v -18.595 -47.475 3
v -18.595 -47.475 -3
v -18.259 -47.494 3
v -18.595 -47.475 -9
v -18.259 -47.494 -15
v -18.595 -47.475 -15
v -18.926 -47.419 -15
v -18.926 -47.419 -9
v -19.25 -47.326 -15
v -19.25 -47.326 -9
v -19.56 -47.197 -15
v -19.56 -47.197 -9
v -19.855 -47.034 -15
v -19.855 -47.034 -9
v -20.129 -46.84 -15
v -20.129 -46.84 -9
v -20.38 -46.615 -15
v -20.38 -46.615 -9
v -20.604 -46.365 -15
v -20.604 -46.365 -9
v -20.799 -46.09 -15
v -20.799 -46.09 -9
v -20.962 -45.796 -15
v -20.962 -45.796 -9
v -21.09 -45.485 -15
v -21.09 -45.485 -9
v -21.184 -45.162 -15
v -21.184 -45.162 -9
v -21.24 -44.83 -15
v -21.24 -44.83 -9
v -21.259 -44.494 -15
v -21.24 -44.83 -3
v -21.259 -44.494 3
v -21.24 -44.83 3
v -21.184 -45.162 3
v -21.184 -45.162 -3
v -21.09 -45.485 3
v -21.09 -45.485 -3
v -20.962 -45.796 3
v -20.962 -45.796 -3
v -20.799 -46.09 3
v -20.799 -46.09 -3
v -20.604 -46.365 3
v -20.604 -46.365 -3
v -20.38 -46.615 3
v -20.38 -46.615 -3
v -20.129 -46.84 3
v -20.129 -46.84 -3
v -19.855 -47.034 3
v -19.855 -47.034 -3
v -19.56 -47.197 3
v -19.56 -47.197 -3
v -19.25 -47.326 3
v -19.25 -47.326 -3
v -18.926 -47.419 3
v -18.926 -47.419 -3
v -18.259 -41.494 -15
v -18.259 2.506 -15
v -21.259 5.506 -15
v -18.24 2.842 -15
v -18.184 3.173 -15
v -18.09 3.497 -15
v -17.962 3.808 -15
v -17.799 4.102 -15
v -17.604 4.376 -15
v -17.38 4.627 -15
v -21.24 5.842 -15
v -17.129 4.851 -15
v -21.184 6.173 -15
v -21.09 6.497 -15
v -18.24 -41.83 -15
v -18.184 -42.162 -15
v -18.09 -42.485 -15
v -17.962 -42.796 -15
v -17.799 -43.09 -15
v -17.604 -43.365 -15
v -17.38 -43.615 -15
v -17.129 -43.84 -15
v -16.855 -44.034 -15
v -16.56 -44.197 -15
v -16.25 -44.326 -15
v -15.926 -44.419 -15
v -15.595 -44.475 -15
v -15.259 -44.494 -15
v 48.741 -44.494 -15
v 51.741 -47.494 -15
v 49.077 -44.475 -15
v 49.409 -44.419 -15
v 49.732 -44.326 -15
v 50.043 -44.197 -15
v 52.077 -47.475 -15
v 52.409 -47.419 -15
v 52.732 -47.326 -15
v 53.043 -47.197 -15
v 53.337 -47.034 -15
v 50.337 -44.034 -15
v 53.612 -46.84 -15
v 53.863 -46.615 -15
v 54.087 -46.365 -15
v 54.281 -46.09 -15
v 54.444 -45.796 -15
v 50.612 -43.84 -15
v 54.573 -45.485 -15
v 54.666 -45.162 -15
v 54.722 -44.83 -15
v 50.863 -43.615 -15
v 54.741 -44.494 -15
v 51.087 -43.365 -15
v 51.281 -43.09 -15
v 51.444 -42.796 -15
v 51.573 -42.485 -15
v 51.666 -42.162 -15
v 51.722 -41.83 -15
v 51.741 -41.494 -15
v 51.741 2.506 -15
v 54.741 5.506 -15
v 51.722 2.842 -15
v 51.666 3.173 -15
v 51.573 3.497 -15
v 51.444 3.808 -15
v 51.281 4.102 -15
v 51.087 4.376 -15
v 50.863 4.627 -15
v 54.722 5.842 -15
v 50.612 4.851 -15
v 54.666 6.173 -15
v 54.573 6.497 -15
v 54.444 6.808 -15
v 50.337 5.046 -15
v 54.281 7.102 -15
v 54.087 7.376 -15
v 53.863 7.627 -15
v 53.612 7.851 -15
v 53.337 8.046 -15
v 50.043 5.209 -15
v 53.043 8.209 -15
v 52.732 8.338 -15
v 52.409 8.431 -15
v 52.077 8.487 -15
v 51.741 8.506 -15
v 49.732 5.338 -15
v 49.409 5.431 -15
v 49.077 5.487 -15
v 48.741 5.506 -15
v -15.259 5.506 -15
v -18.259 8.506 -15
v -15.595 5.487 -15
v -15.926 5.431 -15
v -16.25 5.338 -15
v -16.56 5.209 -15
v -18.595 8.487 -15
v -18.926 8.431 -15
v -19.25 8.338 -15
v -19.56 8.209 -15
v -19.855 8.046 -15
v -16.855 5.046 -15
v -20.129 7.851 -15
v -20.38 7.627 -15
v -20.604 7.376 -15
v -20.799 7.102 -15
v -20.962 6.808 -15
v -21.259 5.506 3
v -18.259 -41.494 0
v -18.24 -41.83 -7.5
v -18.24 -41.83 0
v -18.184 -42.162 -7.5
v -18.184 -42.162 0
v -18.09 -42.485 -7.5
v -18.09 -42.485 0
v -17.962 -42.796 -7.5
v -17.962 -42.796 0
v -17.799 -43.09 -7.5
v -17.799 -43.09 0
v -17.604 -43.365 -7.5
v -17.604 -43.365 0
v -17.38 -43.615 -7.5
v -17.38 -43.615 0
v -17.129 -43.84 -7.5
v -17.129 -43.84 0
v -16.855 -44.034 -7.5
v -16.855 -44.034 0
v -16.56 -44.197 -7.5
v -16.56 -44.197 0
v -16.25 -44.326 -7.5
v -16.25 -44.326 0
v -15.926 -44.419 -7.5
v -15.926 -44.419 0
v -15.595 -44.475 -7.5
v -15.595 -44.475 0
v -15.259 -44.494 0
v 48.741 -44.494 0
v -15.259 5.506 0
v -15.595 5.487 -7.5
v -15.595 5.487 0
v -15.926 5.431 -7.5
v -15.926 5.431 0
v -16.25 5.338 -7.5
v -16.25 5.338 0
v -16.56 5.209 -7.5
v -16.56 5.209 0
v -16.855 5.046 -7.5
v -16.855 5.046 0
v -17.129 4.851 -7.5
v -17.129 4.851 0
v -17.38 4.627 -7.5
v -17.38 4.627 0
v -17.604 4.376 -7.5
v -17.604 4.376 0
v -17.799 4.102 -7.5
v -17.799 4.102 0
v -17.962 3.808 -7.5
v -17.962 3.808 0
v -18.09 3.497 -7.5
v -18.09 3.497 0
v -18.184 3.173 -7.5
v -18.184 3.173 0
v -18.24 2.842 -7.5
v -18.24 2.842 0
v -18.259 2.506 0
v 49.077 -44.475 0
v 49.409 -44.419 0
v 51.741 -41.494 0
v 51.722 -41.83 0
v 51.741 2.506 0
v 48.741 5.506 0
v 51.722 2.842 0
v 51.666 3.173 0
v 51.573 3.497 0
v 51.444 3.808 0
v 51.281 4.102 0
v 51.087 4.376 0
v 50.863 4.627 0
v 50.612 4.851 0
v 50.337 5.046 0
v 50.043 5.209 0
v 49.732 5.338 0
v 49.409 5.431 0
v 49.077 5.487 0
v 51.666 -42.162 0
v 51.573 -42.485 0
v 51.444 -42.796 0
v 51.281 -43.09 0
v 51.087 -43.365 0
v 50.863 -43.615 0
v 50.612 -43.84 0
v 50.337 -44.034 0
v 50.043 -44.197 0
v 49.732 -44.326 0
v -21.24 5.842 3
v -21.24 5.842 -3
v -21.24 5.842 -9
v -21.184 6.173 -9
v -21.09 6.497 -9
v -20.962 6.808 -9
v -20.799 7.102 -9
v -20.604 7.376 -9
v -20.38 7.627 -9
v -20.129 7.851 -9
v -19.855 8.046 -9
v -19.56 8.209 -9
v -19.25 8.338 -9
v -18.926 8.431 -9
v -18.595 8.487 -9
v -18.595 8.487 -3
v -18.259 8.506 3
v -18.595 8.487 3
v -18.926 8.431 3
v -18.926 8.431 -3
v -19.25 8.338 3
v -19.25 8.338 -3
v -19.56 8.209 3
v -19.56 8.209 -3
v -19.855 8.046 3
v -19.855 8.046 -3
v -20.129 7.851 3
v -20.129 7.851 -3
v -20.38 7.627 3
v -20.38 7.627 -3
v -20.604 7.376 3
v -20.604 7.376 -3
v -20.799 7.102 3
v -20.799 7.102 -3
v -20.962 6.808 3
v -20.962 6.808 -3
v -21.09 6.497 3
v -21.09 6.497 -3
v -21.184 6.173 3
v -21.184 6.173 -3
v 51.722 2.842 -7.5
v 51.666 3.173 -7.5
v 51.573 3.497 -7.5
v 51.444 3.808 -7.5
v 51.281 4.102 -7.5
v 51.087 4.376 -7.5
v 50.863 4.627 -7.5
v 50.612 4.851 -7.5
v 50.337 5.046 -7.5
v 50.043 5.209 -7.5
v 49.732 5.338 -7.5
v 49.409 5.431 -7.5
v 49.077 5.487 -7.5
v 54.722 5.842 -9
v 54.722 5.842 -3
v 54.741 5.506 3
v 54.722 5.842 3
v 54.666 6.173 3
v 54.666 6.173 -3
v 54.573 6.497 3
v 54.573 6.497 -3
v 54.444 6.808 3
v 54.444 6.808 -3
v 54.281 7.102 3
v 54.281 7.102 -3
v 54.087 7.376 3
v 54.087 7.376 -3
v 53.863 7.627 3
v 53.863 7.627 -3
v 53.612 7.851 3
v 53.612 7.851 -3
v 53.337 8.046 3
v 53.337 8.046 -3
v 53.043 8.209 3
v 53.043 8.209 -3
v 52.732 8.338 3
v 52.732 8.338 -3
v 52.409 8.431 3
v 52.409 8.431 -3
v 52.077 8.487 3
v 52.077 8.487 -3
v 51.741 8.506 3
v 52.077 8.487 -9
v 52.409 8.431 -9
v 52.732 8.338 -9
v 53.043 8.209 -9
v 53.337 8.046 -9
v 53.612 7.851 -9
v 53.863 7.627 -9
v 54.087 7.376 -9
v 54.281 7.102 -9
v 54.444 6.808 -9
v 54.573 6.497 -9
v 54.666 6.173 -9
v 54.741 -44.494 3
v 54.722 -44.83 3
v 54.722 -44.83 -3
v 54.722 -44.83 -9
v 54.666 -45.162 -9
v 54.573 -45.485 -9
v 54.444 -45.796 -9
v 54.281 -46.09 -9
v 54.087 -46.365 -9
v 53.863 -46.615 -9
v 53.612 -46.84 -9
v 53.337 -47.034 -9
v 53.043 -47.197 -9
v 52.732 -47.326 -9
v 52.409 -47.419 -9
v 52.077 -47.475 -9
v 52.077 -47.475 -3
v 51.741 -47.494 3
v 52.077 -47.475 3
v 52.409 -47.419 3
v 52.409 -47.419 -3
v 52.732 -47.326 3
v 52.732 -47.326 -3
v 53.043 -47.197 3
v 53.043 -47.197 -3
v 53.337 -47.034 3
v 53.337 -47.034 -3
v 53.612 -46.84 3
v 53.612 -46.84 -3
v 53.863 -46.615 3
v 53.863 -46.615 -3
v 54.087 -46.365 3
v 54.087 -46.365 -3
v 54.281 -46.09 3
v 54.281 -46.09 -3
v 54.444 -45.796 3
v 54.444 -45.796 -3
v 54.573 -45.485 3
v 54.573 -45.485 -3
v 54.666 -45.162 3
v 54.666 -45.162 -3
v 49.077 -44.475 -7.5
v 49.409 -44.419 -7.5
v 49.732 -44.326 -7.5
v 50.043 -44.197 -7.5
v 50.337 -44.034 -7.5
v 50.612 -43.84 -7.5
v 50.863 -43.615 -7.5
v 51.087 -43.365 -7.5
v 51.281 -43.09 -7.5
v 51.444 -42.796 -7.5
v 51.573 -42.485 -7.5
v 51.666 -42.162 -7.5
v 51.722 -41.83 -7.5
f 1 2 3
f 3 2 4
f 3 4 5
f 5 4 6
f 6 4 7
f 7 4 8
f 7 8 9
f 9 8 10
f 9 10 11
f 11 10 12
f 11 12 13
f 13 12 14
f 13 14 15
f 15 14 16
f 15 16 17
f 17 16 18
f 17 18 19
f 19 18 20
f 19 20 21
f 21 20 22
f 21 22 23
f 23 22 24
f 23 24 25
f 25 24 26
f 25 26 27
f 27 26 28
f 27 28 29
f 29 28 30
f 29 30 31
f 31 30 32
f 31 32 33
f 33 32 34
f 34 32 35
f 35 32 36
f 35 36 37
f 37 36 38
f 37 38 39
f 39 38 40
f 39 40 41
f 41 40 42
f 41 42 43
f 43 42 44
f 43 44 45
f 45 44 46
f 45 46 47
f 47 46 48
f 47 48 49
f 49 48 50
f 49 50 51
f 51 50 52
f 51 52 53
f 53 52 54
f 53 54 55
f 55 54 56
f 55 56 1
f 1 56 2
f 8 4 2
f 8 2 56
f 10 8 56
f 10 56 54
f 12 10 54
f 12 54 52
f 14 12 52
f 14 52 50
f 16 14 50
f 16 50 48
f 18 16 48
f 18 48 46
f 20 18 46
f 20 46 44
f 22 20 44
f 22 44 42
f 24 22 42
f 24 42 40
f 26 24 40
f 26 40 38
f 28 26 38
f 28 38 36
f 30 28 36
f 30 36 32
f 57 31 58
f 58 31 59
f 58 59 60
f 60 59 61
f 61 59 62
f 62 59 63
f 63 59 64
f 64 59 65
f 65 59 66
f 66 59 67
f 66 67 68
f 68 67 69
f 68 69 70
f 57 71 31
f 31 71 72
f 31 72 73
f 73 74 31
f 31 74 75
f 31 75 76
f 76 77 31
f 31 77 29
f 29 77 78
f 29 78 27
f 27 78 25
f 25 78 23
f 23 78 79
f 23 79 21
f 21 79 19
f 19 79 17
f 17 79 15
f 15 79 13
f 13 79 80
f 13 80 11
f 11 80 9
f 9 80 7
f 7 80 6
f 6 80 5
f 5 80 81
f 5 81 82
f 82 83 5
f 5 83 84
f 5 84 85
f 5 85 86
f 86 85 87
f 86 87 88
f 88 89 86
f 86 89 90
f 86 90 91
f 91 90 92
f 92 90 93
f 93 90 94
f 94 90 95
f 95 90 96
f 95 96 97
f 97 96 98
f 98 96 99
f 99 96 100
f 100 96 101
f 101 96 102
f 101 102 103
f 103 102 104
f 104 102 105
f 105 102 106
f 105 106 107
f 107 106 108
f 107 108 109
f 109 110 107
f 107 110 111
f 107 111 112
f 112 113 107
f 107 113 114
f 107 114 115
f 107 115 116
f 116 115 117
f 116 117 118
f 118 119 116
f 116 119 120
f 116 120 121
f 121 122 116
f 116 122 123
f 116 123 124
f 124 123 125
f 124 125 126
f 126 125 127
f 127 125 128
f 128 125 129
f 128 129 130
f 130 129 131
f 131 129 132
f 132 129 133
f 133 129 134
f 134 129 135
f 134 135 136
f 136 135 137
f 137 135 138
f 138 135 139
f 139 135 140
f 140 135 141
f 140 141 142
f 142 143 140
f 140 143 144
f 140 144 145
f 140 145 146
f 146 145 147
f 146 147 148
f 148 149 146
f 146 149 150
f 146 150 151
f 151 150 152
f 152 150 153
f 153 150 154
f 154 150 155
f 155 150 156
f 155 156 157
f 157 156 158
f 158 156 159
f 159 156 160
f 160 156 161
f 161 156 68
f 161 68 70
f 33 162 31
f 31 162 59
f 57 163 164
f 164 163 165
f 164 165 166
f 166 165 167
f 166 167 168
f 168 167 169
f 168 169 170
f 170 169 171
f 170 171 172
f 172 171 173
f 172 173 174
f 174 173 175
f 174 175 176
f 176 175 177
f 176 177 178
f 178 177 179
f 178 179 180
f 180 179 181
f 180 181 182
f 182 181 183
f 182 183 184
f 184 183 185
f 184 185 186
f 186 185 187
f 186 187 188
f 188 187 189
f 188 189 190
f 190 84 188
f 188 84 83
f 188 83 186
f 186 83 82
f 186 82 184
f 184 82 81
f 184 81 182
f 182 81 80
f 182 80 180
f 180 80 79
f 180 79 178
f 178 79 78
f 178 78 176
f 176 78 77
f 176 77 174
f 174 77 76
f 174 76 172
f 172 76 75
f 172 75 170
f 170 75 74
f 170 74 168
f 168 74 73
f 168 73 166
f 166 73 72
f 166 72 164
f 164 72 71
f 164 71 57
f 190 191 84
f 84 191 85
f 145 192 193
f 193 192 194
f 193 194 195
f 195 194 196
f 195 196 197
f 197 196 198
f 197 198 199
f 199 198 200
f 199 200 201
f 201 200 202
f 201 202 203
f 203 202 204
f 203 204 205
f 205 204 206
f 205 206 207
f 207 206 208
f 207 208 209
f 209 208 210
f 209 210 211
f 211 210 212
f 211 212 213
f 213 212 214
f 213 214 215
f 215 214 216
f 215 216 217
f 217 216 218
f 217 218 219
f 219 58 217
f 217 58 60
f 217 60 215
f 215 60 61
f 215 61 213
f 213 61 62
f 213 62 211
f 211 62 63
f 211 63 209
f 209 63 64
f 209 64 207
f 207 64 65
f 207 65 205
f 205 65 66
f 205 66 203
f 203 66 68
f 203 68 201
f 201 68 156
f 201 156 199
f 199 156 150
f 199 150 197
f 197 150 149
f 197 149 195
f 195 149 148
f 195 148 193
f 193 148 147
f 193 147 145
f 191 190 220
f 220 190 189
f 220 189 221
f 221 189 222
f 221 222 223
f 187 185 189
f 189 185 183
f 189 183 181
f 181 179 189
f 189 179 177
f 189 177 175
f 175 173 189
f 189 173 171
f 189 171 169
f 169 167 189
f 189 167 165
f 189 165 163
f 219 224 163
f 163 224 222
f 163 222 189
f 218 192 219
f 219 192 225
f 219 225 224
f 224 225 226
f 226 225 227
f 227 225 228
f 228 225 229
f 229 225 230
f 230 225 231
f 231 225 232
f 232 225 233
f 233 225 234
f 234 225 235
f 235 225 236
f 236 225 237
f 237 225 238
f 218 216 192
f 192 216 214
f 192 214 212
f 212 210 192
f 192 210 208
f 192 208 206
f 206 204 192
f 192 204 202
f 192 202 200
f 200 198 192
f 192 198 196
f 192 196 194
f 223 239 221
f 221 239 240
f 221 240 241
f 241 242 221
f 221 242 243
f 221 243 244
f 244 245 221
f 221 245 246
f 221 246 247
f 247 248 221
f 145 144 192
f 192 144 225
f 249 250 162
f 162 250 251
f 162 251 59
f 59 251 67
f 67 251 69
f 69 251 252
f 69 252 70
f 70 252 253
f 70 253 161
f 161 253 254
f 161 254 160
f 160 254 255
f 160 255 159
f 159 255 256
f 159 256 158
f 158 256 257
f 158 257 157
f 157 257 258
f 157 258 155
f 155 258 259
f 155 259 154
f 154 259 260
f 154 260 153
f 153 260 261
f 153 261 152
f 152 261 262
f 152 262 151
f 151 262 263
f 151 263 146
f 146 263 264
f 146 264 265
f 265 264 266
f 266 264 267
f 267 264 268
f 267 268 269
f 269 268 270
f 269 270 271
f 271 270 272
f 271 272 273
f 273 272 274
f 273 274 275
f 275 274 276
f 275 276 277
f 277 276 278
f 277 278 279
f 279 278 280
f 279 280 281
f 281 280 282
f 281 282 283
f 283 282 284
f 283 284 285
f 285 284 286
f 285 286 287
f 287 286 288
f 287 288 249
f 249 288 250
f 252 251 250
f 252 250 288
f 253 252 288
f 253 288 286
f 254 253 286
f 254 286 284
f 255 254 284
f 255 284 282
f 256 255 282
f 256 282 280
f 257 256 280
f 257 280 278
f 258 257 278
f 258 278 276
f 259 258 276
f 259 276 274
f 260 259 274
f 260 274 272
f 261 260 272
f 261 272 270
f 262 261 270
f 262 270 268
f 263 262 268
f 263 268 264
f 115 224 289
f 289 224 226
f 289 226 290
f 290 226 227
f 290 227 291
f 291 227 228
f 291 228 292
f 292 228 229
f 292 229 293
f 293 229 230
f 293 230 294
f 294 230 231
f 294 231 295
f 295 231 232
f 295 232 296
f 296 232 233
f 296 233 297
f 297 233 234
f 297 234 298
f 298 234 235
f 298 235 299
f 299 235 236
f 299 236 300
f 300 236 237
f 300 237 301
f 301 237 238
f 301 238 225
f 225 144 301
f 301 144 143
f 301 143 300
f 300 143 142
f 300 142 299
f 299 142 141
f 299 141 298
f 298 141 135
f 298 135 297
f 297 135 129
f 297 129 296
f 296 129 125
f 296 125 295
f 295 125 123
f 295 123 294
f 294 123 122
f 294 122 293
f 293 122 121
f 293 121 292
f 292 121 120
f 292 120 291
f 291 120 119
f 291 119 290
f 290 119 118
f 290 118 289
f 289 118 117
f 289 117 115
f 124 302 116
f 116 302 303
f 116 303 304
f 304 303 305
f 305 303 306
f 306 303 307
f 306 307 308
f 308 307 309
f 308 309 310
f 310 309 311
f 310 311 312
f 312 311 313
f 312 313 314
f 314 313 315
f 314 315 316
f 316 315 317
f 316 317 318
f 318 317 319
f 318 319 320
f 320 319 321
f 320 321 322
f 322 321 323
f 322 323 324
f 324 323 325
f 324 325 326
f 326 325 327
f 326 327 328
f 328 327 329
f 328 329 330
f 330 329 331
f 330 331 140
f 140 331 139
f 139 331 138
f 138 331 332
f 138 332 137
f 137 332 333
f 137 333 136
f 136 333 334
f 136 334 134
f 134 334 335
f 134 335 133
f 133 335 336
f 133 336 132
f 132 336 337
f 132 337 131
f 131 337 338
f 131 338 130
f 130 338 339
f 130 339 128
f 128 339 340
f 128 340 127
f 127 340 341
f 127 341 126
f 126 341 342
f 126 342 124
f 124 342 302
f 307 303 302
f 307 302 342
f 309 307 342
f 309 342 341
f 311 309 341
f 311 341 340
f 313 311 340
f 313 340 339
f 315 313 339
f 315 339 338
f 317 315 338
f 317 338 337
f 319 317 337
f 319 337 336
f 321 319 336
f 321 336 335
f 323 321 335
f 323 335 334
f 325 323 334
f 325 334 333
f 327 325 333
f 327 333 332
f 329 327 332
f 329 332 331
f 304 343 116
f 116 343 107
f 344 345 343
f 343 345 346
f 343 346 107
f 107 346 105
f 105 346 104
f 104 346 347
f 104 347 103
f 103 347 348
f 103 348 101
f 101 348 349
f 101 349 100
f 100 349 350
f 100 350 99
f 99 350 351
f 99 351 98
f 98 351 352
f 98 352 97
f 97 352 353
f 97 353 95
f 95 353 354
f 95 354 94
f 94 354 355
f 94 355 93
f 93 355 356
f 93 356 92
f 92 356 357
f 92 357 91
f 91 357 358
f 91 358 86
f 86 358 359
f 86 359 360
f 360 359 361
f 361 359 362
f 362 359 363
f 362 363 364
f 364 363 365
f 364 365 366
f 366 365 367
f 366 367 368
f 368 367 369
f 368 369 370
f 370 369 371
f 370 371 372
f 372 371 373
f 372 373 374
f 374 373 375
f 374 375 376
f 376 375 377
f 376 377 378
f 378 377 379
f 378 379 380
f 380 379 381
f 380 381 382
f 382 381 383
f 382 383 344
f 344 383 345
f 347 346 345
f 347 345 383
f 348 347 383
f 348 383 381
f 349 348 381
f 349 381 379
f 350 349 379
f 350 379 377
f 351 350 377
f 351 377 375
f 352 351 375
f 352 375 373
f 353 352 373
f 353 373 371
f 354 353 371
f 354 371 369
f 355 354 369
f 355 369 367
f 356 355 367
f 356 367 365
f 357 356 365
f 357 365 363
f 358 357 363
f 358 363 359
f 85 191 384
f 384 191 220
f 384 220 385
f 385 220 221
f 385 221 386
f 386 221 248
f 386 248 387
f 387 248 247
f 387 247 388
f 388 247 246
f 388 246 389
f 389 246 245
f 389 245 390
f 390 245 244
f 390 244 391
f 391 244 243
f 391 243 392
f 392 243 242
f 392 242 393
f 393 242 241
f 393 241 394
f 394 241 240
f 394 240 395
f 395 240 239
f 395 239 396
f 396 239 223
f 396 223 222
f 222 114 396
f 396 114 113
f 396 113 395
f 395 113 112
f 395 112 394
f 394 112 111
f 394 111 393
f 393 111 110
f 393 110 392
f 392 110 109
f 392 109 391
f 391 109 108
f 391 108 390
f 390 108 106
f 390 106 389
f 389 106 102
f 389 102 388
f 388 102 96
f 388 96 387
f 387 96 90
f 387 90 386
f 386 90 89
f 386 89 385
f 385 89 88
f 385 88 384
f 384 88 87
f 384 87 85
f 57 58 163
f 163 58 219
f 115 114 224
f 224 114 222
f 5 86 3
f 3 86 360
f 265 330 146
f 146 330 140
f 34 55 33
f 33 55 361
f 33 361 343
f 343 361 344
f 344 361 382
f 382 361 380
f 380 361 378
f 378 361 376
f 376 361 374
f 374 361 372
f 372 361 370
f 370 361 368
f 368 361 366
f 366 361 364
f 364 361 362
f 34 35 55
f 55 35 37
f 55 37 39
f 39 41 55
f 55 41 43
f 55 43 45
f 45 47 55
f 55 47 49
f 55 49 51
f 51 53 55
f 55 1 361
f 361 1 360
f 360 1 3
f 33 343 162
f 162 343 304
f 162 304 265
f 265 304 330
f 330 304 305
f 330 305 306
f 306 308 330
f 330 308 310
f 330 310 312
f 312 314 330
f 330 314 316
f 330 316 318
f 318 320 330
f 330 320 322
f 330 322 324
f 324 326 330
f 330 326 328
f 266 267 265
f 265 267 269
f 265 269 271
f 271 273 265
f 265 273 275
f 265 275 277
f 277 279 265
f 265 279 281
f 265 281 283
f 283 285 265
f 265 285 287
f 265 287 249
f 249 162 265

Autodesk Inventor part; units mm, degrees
ref_plane "YZ Plane" through (0, 0, 0) normal (1, 0, 0) x (0, 1, 0)
ref_plane "XZ Plane" through (0, 0, 0) normal (0, 1, 0) x (-1, 0, 0)
ref_plane "XY Plane" through (0, 0, 0) normal (0, 0, 1) x (1, 0, 0)
sketch "Sketch1" plane through (0, 0, 0) normal (0, 0, 1) x (1, 0, 0)
  line L0 (-18.2588, 5.5059) -> (51.7412, 5.5059)
  line L1 (51.7412, 5.5059) -> (51.7412, -44.4941)
  line L2 (51.7412, -44.4941) -> (-18.2588, -44.4941)
  line L3 (-18.2588, -44.4941) -> (-18.2588, 5.5059)
  line L4 (54.7412, 8.5059) -> (-21.2588, 8.5059)
  line L5 (-21.2588, 8.5059) -> (-21.2588, -47.4941)
  line L6 (-21.2588, -47.4941) -> (54.7412, -47.4941)
  line L7 (54.7412, -47.4941) -> (54.7412, 8.5059)
  point P0 (0, 0)
  dimension "d0" = 70
  dimension "d1" = 50
  dimension "d2" = 3
extrude "Extrusion1" add sketch "Sketch1" along normal blind 3 contours L0 L1 L2 L3 | L7 L6 L5 L4
extrude "Extrusion2" add sketch "Sketch1" against normal blind 15
fillet "Fillet1" radius 3 8 edges at (51.7412, -44.4941, -7.5) (54.7412, -47.4941, -6) (54.7412, 8.5059, -6) (51.7412, 5.5059, -7.5) (-21.2588, 8.5059, -6) (-18.2588, 5.5059, -7.5) (-18.2588, -44.4941, -7.5) (-21.2588, -47.4941, -6)
properties part number "3DP_PLA_Tray_for_unknown_parts" material "ABS Plastic"
